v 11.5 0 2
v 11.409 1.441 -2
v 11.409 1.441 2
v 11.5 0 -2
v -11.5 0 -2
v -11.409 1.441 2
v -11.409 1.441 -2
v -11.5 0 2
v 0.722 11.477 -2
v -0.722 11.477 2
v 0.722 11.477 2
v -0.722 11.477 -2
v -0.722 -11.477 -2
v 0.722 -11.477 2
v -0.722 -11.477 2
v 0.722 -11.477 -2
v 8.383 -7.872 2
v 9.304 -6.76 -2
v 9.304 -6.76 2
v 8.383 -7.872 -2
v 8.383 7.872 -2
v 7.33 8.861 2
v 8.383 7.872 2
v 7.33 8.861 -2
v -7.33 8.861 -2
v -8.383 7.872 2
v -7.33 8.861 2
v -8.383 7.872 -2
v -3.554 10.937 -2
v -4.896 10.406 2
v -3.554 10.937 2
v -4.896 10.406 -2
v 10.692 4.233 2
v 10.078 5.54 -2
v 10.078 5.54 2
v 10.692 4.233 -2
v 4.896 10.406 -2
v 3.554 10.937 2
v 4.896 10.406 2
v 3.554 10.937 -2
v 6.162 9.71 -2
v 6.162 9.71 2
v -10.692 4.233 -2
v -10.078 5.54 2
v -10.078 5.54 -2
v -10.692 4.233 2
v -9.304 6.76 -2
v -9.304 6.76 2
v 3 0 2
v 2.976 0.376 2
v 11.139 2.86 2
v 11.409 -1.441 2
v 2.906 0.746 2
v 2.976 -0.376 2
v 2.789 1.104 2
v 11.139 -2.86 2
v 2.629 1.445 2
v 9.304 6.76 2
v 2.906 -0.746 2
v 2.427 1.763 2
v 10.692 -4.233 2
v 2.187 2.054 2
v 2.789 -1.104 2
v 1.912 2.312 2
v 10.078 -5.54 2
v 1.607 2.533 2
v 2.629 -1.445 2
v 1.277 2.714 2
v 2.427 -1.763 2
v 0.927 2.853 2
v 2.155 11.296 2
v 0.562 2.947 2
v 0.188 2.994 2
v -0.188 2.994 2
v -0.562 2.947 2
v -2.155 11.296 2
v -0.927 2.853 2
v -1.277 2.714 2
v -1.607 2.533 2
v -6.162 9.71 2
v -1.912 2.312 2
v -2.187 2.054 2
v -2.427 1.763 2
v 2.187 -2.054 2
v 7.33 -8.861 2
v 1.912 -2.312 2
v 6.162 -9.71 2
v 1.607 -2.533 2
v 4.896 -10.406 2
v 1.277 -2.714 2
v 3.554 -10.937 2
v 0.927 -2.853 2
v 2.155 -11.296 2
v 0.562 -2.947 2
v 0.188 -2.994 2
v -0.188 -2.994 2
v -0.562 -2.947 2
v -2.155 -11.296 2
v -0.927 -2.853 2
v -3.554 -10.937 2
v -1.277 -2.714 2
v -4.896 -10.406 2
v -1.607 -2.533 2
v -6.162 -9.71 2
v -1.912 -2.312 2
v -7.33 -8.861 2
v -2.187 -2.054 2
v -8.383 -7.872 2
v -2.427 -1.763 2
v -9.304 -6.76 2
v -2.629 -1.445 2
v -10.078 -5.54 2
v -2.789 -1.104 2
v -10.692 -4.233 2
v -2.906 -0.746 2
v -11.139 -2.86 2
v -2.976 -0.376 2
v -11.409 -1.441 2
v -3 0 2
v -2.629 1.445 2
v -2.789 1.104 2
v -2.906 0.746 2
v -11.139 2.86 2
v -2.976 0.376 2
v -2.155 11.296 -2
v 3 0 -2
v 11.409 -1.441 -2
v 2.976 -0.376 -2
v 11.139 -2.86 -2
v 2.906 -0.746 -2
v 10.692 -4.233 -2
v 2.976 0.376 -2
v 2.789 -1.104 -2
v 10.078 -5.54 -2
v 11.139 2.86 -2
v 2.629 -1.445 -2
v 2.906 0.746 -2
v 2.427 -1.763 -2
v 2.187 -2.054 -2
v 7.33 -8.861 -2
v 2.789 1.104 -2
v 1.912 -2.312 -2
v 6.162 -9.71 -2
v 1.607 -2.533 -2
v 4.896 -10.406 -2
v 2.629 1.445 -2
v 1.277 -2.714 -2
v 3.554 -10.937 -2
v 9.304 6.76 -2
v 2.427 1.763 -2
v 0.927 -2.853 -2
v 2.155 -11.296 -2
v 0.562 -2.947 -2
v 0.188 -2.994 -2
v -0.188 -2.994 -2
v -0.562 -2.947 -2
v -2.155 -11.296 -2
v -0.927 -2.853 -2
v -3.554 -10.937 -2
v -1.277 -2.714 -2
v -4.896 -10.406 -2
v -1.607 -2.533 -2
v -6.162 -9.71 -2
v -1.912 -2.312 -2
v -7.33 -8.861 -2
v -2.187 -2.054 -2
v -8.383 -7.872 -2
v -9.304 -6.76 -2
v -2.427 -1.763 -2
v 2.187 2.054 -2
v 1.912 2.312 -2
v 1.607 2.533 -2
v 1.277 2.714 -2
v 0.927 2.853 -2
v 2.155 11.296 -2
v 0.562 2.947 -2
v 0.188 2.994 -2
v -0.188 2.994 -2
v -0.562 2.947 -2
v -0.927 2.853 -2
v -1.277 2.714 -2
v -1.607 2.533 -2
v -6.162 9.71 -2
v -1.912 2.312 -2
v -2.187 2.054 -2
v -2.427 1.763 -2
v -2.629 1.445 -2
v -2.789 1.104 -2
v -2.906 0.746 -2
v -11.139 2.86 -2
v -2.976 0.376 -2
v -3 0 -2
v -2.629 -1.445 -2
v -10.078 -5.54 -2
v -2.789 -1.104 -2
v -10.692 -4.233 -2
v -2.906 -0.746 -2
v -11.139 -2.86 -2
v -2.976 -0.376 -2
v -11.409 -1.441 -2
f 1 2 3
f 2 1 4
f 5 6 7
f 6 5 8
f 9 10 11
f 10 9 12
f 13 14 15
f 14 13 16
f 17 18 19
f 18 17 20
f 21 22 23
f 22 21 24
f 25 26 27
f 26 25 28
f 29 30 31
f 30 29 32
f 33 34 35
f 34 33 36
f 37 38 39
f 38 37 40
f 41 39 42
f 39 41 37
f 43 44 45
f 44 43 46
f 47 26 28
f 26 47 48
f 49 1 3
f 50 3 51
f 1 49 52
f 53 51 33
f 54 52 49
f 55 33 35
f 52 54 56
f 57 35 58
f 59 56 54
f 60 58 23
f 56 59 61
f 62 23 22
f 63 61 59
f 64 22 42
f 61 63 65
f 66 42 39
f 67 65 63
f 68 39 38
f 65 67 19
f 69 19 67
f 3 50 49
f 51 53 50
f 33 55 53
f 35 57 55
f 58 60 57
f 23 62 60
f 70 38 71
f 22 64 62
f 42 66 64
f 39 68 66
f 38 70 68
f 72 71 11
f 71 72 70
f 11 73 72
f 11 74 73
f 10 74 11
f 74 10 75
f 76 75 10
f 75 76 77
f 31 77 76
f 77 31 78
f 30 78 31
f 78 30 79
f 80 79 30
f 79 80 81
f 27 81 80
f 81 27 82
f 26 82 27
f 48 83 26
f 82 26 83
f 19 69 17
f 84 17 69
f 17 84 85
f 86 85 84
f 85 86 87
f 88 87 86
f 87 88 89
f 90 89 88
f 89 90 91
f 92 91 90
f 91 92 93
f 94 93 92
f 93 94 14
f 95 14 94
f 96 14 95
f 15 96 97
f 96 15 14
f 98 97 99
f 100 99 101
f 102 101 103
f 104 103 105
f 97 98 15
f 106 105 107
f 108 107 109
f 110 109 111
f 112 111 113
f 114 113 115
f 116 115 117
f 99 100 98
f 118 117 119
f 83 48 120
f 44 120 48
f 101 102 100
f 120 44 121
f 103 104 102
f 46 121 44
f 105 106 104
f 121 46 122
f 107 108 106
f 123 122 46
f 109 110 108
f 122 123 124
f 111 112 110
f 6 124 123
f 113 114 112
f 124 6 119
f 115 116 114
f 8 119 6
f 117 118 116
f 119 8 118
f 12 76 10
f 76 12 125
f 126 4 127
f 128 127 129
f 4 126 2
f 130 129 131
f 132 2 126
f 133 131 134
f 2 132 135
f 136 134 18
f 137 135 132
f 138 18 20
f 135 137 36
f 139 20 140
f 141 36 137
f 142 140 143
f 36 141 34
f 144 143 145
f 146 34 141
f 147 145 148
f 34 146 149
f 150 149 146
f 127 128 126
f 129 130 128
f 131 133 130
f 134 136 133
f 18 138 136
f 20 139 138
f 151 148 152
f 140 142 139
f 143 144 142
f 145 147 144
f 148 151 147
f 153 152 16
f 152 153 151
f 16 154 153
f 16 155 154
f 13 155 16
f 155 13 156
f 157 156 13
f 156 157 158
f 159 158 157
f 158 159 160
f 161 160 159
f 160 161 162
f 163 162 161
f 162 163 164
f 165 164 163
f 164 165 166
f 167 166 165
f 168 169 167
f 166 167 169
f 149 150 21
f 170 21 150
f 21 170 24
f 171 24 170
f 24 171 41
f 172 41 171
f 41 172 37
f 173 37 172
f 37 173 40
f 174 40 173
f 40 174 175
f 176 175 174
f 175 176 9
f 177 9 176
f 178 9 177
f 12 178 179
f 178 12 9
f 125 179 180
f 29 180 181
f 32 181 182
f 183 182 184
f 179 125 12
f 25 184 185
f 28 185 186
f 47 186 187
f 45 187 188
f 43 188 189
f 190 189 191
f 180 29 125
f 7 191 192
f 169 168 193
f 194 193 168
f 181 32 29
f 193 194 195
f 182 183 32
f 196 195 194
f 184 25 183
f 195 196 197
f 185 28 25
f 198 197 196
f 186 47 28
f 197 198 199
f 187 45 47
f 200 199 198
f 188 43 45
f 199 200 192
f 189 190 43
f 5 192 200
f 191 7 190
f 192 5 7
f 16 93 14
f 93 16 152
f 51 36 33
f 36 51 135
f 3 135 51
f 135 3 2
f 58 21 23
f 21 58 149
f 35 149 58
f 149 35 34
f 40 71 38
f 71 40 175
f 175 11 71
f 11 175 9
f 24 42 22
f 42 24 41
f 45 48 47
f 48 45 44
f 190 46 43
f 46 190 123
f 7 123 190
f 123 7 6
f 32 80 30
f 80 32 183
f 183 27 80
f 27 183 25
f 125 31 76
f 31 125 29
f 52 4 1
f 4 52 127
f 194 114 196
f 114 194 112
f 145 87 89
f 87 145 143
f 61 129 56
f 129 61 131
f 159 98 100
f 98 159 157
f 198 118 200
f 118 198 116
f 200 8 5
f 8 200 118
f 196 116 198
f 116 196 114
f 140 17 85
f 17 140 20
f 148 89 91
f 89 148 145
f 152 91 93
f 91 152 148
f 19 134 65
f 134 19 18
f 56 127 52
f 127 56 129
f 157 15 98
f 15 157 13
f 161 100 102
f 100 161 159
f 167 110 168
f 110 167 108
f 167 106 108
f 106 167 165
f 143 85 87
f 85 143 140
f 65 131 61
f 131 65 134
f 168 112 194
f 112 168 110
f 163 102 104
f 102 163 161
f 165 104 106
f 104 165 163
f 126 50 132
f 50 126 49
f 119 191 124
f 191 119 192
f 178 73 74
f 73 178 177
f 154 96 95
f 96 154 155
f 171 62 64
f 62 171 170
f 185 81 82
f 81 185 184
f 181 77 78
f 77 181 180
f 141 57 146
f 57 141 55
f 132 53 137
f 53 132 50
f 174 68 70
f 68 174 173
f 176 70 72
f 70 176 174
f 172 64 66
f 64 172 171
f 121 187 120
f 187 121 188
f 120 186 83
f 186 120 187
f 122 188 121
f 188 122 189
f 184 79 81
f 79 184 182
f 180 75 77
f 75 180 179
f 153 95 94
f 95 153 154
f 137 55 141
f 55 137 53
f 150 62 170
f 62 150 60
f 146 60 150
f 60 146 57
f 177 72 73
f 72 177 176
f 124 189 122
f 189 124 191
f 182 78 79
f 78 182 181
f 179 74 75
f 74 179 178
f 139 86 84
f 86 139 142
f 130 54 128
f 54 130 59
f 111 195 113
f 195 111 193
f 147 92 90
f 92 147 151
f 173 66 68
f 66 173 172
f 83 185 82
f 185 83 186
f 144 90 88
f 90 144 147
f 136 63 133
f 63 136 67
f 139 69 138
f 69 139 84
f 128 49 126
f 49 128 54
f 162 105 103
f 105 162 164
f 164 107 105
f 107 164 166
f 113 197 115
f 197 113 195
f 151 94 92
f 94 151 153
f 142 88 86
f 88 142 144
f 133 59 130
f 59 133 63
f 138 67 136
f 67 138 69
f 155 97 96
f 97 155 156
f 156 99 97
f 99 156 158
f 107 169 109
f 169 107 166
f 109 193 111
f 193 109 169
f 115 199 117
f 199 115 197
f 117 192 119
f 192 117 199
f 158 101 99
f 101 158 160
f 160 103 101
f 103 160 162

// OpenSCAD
$fn = 50;


difference() {
	union() {
		translate(v = [0, 0, -2.0000000000]) {
			cylinder(h = 4, r = 11.5000000000);
		}
	}
	union() {
		translate(v = [0, 0, -100.0000000000]) {
			cylinder(h = 200, r = 3);
		}
	}
}
